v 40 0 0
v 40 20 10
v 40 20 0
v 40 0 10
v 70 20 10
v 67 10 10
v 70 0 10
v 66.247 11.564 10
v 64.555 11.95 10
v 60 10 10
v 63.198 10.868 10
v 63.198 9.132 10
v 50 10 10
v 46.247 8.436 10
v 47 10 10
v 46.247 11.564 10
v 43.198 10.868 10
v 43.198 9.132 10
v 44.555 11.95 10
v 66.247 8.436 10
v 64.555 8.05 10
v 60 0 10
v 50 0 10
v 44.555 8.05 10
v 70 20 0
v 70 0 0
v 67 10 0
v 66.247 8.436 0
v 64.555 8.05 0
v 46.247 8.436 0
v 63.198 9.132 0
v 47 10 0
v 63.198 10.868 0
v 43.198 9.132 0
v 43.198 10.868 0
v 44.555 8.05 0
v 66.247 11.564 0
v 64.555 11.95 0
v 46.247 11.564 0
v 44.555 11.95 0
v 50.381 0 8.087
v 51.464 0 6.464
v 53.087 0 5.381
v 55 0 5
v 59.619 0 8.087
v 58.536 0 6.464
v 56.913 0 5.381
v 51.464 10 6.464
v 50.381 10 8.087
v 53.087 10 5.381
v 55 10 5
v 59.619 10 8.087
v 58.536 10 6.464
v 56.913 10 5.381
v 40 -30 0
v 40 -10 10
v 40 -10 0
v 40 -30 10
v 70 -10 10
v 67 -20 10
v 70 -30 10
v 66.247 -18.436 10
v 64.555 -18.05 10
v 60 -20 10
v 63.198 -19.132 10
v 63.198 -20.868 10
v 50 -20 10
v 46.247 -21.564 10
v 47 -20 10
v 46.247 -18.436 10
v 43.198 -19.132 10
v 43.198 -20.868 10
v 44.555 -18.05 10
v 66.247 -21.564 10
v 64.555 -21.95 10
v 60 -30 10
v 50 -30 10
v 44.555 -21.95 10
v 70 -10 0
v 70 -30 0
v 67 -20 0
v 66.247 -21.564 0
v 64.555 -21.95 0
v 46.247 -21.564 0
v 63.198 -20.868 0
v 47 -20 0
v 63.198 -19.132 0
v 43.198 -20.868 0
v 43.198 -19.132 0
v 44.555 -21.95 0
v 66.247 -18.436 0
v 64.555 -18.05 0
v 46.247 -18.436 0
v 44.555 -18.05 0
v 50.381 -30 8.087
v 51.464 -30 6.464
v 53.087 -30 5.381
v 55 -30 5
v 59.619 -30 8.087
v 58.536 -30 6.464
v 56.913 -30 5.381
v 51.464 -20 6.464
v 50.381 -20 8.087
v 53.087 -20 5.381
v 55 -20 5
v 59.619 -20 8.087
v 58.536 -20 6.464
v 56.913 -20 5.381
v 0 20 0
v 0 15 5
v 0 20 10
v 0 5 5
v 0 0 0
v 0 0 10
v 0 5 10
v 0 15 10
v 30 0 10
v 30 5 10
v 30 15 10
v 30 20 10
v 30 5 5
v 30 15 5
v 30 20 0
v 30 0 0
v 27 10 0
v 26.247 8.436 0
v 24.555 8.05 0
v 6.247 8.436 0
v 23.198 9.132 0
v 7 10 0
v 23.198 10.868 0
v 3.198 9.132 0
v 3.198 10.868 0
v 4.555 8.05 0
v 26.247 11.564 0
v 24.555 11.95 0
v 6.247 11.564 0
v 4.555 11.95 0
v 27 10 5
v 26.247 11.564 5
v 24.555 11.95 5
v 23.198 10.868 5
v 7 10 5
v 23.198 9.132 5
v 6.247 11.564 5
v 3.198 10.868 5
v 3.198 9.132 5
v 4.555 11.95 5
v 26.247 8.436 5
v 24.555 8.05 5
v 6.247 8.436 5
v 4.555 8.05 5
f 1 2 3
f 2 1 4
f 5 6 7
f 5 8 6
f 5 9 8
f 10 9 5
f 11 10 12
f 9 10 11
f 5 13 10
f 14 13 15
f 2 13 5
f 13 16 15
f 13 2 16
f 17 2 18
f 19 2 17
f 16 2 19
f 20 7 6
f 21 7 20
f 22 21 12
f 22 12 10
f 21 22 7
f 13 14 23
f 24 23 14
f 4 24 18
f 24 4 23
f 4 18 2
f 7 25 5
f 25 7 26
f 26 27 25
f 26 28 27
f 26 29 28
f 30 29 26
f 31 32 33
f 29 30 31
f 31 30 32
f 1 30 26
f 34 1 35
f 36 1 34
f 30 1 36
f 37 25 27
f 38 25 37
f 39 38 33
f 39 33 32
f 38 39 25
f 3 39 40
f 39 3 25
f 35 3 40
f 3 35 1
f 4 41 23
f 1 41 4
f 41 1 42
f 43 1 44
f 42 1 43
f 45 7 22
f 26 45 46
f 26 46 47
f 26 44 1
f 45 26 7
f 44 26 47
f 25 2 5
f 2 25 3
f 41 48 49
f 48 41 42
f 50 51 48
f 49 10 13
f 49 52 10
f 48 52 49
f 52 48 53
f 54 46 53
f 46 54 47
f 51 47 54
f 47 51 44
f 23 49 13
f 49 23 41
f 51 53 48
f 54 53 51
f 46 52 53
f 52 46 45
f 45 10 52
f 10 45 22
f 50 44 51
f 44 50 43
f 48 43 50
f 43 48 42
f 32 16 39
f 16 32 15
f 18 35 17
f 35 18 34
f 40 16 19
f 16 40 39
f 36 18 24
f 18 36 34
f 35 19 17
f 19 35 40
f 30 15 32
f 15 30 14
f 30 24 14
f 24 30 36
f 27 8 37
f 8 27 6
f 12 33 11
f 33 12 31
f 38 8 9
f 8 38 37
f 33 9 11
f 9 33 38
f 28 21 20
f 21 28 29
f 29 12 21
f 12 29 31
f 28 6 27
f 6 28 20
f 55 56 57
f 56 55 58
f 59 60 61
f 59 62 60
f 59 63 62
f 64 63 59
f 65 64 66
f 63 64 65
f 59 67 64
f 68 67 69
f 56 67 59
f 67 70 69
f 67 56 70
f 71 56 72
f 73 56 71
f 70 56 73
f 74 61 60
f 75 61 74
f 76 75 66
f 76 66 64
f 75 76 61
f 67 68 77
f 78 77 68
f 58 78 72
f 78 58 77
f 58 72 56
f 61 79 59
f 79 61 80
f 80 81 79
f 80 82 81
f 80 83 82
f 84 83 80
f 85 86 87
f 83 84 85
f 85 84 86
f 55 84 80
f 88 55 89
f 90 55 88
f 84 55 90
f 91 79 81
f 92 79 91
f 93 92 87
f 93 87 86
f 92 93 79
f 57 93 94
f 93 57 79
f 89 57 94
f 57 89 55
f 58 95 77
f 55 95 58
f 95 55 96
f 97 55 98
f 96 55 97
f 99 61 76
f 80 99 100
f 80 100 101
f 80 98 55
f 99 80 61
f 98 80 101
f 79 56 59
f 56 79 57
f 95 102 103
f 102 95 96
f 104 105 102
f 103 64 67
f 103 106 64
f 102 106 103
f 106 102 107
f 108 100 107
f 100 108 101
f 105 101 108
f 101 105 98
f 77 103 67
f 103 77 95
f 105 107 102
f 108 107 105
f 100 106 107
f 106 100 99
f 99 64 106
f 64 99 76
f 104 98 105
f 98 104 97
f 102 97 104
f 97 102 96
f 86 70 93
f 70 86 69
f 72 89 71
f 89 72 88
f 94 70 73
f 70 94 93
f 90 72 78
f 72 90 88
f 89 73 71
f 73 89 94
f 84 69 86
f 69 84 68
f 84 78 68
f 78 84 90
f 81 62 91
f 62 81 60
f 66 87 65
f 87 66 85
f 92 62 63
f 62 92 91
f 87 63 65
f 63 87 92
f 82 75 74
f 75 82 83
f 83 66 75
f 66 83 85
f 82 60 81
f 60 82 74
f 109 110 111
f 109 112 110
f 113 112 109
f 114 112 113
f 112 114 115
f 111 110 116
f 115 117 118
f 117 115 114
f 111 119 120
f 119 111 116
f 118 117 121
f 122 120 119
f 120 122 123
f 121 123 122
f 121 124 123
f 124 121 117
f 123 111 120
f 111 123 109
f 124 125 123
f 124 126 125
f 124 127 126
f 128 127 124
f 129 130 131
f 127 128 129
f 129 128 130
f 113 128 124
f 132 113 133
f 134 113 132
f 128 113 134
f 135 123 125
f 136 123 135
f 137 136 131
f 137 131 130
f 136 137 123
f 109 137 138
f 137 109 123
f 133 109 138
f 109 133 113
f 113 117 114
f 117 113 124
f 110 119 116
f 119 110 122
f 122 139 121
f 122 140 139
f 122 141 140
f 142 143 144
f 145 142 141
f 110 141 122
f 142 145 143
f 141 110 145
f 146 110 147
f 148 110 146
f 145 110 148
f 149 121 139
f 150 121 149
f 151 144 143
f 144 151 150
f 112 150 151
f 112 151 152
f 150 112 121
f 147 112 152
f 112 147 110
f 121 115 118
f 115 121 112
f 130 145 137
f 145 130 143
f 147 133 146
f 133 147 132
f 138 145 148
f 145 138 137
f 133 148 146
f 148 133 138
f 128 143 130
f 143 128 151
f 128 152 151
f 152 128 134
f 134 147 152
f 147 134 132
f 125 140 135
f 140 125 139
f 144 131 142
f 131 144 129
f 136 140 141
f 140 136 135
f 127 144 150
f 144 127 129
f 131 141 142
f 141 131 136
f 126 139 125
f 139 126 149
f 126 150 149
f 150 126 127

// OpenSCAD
translate([40,0,0]) difference() {
cube([30,20,10]);
translate([15,10,10]) rotate([90,0]) cylinder(15,5,5);
    translate([5,10,-5]) cylinder(20,2,2);
    translate([25,10,-5]) cylinder(20,2,2);
}

translate([40,-30,0]) difference() {
cube([30,20,10]);
translate([15,10,10]) rotate([90,0]) cylinder(15,5,5);
    translate([5,10,-5]) cylinder(20,2,2);
    translate([25,10,-5]) cylinder(20,2,2);
}

difference() {
cube([30,20,10]);
translate([-1,5,5]) cube([40,10,7]);
    translate([5,10,-5]) cylinder(20,2,2);
    translate([25,10,-5]) cylinder(20,2,2);
}
